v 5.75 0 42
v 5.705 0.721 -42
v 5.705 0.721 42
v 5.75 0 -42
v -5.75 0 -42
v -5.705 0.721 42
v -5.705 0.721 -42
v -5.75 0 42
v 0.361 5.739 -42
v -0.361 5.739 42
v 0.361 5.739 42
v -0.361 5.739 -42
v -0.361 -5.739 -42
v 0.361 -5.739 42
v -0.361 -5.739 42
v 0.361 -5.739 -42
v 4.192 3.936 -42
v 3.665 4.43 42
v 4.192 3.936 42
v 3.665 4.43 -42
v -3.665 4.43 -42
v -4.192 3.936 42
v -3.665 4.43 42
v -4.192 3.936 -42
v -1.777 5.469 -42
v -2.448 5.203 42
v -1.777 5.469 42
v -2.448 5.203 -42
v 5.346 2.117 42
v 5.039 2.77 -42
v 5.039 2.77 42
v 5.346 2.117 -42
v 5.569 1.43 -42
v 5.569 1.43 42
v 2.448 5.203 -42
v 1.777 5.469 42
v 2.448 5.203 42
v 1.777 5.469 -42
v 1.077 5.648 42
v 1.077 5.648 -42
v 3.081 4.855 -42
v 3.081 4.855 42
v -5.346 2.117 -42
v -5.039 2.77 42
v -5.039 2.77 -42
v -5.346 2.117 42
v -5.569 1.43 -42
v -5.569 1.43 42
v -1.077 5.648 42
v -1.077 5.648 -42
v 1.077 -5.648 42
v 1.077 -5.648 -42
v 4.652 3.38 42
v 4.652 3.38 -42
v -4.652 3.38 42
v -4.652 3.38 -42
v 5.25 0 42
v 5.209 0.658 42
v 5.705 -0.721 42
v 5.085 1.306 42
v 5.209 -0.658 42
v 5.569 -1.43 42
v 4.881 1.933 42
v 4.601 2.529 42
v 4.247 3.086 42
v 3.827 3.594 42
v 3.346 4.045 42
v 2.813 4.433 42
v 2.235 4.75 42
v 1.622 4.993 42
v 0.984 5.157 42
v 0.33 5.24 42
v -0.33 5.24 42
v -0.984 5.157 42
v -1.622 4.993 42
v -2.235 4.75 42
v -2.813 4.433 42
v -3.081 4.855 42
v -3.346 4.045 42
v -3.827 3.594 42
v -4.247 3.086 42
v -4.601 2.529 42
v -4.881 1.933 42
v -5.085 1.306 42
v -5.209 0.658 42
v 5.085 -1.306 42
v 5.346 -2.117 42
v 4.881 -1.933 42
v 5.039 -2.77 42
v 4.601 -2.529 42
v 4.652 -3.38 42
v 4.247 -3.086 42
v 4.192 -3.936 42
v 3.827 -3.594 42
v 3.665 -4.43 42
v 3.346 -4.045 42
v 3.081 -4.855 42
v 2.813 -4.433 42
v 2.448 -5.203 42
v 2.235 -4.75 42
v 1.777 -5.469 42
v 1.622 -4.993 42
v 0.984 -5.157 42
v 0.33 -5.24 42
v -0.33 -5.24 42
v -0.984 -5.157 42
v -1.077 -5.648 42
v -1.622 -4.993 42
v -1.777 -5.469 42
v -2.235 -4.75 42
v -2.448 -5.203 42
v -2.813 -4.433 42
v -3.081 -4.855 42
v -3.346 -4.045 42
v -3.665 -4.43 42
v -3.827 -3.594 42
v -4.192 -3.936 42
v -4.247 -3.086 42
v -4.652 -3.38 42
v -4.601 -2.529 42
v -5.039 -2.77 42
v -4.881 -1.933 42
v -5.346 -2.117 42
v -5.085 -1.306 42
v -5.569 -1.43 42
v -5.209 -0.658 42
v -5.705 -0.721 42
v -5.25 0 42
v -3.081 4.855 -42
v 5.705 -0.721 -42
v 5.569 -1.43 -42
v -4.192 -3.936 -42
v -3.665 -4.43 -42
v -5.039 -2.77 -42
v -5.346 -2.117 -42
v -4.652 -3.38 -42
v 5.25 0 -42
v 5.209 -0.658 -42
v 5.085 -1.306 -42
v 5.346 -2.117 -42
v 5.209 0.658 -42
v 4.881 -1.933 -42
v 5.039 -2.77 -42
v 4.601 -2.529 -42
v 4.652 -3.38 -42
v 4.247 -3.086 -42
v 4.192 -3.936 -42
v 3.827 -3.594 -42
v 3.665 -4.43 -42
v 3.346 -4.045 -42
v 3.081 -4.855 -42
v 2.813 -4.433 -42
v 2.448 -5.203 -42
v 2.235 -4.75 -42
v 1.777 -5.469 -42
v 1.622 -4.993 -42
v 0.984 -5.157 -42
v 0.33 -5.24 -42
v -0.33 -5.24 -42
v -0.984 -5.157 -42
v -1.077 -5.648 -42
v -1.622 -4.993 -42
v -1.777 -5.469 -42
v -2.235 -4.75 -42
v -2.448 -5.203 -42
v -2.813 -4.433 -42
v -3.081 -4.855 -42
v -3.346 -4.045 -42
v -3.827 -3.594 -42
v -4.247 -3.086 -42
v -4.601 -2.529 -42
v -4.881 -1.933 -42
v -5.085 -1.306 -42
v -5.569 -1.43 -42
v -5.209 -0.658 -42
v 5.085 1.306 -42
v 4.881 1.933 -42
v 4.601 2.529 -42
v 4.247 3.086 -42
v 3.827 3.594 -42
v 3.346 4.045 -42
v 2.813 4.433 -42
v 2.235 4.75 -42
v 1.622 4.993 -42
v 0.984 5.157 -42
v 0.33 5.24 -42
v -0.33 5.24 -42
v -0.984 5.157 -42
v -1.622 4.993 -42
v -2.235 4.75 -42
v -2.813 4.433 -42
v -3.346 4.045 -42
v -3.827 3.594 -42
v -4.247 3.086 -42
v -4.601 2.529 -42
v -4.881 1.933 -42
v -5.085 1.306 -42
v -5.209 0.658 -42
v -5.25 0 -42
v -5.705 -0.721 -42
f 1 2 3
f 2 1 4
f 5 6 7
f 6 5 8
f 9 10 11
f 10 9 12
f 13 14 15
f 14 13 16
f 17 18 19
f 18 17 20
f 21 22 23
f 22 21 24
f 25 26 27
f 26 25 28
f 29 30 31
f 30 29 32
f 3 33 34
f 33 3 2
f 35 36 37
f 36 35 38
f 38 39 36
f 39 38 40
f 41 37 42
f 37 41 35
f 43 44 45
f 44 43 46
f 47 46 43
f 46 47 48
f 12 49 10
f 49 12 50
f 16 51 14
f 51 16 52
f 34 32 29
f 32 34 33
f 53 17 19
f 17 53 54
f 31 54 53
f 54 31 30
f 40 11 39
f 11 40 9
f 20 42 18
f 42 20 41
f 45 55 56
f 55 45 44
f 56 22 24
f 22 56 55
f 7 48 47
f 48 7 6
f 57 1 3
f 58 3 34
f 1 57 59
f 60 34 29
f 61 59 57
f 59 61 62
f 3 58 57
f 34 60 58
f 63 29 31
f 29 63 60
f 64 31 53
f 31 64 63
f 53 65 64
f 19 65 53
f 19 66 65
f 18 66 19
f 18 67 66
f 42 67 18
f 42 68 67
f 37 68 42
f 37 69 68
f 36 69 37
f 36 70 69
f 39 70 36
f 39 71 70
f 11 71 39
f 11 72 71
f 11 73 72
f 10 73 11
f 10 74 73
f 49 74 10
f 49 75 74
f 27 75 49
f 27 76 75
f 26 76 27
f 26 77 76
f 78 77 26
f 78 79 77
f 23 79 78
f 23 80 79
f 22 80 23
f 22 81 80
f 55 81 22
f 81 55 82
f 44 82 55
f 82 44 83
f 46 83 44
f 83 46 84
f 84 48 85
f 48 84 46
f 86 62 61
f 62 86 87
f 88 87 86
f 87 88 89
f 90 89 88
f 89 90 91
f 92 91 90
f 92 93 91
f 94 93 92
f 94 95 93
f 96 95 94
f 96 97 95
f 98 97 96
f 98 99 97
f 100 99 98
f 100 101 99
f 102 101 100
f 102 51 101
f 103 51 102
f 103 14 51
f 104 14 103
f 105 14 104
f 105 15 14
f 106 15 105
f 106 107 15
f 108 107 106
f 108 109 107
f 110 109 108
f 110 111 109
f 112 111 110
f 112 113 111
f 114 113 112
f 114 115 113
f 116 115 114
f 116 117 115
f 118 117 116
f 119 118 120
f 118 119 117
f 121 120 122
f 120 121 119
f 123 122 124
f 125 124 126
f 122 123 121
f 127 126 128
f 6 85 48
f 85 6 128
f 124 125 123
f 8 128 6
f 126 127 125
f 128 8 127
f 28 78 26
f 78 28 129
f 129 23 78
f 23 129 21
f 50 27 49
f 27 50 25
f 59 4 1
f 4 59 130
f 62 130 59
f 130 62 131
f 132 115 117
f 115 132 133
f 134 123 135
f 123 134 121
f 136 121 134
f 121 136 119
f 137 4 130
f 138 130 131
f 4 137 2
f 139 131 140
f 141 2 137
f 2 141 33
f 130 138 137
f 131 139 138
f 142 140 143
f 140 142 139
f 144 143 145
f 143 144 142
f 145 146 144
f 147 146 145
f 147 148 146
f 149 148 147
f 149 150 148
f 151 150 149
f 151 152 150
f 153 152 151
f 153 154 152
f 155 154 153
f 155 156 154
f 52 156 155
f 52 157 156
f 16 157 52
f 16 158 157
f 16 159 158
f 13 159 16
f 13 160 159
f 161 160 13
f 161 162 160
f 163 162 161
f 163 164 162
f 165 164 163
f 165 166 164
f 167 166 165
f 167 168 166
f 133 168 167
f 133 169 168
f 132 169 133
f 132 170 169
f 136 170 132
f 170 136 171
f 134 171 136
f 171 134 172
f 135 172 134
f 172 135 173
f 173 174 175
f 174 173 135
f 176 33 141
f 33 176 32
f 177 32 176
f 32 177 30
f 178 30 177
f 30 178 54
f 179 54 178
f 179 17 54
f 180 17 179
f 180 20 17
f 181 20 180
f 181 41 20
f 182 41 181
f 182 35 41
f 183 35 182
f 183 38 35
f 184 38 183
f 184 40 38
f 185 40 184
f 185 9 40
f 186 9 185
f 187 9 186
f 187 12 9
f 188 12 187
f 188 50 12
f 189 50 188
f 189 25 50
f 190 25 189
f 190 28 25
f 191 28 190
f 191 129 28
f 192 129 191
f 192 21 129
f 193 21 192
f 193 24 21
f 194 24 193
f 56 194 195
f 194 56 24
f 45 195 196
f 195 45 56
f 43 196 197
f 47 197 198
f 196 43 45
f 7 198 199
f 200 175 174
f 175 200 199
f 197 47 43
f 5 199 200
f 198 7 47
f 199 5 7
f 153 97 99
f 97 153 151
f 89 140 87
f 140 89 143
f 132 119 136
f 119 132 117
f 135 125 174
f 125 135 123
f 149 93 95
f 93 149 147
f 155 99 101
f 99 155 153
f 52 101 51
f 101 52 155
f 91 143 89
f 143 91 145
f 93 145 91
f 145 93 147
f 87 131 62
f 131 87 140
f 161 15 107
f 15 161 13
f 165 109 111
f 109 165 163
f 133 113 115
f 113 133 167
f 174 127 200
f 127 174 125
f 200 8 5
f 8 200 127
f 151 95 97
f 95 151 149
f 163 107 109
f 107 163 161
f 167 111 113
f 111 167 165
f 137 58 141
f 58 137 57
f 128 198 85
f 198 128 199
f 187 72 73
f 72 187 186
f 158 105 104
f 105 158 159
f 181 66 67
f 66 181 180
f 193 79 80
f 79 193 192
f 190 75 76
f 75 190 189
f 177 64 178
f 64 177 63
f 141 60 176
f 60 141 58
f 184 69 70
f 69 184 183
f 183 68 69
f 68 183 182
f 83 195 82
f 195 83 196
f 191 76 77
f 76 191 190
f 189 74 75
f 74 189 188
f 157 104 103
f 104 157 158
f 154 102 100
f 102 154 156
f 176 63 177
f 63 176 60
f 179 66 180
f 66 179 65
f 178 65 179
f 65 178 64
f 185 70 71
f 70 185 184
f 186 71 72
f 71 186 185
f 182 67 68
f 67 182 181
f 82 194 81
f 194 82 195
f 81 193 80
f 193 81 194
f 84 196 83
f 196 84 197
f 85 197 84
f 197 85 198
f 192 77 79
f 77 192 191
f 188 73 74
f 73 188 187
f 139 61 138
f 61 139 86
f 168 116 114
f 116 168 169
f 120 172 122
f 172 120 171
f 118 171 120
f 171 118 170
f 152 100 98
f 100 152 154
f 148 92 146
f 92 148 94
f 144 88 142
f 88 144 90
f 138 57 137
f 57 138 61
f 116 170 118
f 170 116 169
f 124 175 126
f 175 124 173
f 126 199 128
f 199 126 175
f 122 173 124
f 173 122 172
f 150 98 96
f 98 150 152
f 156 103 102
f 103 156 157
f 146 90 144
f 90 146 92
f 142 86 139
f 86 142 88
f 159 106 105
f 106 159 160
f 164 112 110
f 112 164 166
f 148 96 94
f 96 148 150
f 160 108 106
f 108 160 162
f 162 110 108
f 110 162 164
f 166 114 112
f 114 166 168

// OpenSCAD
$fn = 50;


difference() {
	union() {
		translate(v = [0, 0, -42.0000000000]) {
			cylinder(h = 84, r = 5.7500000000);
		}
	}
	union() {
		translate(v = [0, 0, -100.0000000000]) {
			cylinder(h = 200, r = 5.2500000000);
		}
	}
}
